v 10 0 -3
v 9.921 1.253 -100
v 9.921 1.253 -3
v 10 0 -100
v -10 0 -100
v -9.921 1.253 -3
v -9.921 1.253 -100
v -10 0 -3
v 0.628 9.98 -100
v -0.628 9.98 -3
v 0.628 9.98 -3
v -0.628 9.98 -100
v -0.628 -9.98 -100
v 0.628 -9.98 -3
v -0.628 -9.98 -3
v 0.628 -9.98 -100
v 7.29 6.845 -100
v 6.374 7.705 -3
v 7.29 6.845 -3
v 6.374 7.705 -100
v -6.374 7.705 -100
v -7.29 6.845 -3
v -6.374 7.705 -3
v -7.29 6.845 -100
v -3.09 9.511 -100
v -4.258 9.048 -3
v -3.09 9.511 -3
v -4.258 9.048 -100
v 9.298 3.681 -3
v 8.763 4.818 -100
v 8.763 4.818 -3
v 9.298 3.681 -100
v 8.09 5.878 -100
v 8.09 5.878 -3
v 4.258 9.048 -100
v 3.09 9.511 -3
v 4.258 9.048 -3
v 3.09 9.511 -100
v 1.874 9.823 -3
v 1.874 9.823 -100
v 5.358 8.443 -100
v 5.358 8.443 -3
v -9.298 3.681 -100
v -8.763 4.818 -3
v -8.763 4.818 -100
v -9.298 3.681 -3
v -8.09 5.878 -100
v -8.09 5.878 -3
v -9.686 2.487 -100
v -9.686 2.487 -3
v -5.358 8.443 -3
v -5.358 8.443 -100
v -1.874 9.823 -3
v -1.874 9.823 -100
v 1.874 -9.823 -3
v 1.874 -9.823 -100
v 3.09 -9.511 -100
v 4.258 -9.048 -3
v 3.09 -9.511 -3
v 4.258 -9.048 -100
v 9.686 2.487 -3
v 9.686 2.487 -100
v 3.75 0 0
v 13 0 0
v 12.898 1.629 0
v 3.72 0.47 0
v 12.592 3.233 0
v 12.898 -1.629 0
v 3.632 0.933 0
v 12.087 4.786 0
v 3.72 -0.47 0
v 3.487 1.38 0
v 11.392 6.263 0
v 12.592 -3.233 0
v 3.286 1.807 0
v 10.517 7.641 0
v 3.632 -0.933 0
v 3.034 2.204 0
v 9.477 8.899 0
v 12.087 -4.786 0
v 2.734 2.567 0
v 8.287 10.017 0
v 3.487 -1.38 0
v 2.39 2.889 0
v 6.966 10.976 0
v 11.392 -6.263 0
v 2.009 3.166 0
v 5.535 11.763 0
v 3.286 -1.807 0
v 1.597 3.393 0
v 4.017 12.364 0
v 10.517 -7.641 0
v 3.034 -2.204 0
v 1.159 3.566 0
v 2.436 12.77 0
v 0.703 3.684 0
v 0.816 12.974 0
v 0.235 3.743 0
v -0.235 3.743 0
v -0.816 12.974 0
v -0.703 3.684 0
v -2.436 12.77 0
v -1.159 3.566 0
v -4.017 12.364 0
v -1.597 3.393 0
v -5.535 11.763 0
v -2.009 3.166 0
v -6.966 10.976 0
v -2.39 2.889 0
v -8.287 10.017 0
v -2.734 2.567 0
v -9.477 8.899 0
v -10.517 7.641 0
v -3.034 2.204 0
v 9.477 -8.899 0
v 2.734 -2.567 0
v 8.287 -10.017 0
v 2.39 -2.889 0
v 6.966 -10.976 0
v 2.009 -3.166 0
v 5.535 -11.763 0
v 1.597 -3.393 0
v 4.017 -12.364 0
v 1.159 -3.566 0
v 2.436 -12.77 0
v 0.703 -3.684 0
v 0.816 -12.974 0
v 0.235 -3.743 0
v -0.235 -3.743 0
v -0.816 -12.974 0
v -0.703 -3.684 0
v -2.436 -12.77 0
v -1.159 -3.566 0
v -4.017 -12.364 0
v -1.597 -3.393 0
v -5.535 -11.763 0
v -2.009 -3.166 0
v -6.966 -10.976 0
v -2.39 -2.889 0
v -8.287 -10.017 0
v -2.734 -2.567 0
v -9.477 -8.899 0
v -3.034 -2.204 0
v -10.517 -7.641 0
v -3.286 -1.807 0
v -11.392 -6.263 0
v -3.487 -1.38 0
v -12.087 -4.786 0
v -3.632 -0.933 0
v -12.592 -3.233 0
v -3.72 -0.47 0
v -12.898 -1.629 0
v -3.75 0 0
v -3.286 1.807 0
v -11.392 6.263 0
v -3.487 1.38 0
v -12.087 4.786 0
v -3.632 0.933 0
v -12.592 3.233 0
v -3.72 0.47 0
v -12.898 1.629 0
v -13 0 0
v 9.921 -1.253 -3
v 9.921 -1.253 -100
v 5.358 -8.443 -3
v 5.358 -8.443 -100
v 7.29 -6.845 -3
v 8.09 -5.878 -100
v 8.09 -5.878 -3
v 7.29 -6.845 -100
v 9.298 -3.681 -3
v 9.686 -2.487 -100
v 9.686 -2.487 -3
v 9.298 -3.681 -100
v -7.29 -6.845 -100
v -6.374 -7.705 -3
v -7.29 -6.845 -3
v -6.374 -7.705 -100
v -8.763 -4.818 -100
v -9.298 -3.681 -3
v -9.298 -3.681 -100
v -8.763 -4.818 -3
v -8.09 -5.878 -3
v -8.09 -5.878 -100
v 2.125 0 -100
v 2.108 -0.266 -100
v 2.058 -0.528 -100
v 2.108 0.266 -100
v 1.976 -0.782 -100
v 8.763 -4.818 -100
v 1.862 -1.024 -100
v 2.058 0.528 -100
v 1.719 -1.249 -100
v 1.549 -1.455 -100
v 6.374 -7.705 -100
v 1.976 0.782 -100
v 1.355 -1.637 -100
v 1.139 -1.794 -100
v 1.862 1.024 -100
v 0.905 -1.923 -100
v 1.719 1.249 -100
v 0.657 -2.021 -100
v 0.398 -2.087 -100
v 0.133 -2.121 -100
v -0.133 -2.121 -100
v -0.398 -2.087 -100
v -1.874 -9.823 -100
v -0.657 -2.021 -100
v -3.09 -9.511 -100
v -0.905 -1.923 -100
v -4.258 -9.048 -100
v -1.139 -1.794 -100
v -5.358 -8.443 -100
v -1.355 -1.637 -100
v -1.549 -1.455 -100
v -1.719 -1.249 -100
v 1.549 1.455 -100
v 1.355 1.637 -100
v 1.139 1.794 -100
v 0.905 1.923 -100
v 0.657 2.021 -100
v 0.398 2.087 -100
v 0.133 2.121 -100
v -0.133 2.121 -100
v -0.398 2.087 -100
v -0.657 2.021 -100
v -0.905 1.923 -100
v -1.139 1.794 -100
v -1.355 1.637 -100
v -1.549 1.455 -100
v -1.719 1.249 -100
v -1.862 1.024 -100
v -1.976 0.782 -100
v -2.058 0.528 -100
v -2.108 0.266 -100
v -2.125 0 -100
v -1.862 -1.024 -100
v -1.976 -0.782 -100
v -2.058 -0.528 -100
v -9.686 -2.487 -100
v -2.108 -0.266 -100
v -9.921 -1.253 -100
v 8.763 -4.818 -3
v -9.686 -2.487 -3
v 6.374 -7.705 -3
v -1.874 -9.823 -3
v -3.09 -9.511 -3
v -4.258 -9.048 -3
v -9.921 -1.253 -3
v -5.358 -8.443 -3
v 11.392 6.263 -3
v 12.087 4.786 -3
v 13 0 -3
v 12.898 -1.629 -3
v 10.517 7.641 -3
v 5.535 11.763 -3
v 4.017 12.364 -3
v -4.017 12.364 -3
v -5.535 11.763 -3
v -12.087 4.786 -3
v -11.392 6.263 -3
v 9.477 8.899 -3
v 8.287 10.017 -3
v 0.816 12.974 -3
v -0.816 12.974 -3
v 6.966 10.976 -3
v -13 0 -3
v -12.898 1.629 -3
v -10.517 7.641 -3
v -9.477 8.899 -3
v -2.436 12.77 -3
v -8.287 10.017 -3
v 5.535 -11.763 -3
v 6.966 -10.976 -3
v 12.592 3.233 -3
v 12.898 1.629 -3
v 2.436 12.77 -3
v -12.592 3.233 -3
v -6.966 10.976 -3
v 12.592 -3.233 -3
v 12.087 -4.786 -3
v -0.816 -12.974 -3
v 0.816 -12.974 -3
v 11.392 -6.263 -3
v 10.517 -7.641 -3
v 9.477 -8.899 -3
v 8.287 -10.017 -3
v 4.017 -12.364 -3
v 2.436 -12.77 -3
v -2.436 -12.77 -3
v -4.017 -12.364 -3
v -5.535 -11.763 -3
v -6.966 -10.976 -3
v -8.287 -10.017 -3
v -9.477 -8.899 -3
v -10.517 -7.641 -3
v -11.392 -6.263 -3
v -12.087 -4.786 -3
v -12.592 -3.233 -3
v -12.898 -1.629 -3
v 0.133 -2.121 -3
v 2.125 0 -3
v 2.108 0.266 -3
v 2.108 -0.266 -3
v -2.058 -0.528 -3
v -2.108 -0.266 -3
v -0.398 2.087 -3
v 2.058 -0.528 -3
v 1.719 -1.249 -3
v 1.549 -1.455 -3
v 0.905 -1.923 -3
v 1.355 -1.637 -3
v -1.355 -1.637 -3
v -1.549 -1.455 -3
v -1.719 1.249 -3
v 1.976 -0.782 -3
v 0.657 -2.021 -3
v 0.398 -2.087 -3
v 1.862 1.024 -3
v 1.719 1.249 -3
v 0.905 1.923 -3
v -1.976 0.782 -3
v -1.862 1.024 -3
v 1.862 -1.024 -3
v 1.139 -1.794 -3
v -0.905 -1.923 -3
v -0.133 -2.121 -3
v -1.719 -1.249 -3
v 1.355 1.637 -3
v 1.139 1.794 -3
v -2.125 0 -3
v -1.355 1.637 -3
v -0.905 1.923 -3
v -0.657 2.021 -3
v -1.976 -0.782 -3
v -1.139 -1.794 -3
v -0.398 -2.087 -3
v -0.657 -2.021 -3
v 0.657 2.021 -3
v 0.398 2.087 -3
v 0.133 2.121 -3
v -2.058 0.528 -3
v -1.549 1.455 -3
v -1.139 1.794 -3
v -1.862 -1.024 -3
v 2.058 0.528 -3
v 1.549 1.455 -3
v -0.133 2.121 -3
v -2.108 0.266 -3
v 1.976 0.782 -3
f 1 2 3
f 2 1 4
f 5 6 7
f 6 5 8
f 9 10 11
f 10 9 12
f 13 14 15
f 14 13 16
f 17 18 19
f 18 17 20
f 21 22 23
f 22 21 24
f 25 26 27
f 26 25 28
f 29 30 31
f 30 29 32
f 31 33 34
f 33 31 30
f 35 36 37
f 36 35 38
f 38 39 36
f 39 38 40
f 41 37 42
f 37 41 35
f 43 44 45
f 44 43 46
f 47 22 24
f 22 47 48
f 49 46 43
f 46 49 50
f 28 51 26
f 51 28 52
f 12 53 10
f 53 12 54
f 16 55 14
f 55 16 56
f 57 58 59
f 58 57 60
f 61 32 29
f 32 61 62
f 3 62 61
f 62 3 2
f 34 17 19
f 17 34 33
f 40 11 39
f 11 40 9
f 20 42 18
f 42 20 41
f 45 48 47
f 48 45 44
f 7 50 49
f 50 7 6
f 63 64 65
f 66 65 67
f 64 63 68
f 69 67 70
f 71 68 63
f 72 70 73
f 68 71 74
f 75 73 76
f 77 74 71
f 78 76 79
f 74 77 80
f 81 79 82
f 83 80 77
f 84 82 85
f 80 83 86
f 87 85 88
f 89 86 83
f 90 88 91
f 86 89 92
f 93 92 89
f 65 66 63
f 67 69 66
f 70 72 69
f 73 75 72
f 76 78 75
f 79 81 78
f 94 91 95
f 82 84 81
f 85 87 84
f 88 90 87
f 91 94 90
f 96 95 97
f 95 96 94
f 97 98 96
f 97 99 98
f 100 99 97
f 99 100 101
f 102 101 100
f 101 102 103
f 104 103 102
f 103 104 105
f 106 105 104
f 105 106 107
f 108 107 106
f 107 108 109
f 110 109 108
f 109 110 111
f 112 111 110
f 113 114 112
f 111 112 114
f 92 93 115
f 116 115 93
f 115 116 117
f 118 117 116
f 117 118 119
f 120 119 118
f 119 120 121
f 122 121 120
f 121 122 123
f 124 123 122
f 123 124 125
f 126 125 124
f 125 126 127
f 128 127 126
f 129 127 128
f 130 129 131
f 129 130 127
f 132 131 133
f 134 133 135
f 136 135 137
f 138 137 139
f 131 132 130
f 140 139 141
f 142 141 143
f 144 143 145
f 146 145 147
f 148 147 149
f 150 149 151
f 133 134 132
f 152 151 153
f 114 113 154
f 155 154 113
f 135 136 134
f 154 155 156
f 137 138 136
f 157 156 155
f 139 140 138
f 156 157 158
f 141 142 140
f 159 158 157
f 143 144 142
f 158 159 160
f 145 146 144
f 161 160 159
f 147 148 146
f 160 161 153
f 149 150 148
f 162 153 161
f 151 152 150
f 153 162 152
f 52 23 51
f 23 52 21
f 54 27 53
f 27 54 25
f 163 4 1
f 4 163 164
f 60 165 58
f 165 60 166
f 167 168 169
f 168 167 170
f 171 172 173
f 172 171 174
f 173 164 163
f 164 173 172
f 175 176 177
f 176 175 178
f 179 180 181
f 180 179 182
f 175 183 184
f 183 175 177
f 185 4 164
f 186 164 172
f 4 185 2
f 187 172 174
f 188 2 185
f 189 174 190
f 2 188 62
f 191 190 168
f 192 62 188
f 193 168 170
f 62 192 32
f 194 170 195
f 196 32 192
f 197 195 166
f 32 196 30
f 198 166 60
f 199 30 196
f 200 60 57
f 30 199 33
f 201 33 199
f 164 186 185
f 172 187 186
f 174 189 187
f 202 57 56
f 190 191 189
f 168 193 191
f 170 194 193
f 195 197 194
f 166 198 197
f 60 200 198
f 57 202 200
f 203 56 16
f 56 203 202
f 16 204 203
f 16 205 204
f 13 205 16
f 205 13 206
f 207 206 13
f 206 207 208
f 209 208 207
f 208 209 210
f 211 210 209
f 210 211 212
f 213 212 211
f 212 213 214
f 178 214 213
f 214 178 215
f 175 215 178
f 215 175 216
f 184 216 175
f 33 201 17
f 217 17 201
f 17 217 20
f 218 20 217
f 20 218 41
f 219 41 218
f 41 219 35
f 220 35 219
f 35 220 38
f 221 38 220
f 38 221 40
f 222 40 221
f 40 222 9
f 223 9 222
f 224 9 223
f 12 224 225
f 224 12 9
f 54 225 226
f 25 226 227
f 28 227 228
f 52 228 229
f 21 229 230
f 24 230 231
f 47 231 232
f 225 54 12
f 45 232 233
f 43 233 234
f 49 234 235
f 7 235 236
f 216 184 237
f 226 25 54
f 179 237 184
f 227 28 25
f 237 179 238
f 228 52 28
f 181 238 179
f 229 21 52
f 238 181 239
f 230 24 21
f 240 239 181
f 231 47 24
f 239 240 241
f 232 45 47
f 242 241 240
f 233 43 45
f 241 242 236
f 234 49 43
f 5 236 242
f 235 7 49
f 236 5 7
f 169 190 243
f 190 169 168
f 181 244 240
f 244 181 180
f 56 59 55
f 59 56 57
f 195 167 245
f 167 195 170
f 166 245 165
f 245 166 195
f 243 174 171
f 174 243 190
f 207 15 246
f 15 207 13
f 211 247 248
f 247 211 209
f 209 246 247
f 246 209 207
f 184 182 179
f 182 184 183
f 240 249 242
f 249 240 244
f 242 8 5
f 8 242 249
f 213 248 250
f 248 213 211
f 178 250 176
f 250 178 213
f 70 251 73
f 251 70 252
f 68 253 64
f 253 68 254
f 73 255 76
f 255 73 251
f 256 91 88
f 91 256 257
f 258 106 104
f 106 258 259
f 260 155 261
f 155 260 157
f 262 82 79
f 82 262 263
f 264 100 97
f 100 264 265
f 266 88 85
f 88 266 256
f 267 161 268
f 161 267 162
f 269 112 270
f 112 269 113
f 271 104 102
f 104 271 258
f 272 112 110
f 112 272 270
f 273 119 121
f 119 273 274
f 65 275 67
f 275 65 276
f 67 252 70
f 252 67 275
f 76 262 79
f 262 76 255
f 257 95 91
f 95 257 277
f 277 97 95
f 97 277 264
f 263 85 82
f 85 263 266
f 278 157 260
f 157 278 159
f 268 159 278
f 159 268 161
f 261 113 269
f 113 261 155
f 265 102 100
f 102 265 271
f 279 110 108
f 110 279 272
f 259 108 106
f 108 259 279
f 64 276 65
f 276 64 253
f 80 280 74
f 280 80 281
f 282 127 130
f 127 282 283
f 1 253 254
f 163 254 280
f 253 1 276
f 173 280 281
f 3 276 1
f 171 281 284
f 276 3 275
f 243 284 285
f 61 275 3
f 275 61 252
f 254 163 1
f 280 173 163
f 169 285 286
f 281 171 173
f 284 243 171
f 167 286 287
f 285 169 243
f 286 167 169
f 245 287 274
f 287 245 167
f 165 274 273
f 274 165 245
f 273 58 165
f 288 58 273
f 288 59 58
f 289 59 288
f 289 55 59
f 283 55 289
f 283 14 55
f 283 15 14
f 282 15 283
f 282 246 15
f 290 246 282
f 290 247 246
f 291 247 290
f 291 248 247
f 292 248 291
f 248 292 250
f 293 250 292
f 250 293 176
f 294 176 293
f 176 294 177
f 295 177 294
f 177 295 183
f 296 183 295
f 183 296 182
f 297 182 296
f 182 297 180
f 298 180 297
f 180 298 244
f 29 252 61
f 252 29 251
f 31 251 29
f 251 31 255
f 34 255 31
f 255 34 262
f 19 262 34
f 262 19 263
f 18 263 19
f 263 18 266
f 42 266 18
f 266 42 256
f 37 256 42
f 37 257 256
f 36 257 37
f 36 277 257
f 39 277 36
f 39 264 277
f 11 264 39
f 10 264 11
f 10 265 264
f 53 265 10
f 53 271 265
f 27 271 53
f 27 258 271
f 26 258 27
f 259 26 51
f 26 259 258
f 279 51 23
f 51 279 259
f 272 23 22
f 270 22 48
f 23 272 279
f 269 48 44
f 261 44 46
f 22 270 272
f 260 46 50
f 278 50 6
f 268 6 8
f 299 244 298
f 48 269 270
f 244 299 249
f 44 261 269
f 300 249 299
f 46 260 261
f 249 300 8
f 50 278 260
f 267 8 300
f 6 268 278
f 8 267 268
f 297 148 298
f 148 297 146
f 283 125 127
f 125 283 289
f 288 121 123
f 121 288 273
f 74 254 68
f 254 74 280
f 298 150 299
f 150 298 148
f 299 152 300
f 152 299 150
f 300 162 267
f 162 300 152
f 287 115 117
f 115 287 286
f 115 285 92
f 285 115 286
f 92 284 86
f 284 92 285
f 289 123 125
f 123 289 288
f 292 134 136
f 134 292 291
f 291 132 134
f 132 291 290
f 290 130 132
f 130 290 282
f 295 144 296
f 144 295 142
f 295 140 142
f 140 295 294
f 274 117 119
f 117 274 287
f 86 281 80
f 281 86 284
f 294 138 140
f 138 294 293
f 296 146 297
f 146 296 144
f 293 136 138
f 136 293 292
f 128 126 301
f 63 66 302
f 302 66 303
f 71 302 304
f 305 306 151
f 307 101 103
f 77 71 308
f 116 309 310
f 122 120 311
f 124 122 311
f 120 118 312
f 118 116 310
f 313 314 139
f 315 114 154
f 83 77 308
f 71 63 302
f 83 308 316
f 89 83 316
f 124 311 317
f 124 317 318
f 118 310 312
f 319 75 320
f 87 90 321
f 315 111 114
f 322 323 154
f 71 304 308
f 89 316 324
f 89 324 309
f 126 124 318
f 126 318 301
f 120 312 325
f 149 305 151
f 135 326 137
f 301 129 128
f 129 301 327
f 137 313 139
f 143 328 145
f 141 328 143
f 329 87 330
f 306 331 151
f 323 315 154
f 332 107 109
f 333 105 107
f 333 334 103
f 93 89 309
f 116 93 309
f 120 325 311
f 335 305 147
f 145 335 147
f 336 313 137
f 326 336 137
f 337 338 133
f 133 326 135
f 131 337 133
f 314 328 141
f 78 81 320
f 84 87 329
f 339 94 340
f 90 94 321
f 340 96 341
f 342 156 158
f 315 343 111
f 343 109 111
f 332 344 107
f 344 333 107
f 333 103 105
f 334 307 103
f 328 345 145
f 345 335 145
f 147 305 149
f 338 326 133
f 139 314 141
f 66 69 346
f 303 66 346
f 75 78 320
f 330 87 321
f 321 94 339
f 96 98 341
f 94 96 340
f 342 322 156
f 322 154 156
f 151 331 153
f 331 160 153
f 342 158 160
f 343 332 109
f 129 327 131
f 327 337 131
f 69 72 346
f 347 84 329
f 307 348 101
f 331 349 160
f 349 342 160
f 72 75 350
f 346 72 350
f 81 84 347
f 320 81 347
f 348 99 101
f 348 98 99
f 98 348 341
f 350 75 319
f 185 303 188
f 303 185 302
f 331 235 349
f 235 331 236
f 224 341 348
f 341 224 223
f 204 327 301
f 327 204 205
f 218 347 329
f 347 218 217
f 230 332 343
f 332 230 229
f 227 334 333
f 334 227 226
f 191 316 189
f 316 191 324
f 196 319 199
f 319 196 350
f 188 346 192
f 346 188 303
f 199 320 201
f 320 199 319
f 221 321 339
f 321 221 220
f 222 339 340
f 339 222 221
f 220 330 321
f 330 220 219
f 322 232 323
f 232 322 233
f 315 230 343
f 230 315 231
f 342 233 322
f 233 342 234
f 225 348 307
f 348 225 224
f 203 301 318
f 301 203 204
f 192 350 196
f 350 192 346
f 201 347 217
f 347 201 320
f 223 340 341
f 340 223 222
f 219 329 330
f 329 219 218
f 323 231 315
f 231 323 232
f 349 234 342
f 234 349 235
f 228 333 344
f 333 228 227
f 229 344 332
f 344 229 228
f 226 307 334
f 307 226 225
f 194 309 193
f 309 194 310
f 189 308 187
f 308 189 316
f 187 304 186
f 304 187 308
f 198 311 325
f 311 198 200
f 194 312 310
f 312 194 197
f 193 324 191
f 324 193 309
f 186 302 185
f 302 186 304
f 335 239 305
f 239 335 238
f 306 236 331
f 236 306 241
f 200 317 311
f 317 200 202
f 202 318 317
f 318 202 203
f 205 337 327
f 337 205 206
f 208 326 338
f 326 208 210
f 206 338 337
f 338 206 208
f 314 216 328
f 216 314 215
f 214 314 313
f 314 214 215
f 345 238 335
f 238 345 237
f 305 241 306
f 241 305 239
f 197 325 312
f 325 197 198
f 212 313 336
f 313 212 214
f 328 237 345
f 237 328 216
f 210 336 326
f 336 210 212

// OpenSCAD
$fn = 50;


difference() {
	union() {
		translate(v = [0, 0, -100.0000000000]) {
			cylinder(h = 100, r = 10.0000000000);
		}
		translate(v = [0, 0, -3.0000000000]) {
			cylinder(h = 3, r = 13.0000000000);
		}
	}
	union() {
		translate(v = [0, 0, 0]) {
			rotate(a = [0, 0, 0]) {
				difference() {
					union() {
						#translate(v = [0, 0, -100.0000000000]) {
							cylinder(h = 100, r = 2.0000000000);
						}
						#translate(v = [0, 0, -3]) {
							cylinder(h = 3, r = 10.0000000000, r1 = 2.1250000000, r2 = 3.7500000000);
						}
						#translate(v = [0, 0, -100.0000000000]) {
							cylinder(h = 100, r = 2.1250000000);
						}
						#translate(v = [0, 0, -100.0000000000]) {
							cylinder(h = 100, r = 2.0000000000);
						}
					}
					union();
				}
			}
		}
	}
}
